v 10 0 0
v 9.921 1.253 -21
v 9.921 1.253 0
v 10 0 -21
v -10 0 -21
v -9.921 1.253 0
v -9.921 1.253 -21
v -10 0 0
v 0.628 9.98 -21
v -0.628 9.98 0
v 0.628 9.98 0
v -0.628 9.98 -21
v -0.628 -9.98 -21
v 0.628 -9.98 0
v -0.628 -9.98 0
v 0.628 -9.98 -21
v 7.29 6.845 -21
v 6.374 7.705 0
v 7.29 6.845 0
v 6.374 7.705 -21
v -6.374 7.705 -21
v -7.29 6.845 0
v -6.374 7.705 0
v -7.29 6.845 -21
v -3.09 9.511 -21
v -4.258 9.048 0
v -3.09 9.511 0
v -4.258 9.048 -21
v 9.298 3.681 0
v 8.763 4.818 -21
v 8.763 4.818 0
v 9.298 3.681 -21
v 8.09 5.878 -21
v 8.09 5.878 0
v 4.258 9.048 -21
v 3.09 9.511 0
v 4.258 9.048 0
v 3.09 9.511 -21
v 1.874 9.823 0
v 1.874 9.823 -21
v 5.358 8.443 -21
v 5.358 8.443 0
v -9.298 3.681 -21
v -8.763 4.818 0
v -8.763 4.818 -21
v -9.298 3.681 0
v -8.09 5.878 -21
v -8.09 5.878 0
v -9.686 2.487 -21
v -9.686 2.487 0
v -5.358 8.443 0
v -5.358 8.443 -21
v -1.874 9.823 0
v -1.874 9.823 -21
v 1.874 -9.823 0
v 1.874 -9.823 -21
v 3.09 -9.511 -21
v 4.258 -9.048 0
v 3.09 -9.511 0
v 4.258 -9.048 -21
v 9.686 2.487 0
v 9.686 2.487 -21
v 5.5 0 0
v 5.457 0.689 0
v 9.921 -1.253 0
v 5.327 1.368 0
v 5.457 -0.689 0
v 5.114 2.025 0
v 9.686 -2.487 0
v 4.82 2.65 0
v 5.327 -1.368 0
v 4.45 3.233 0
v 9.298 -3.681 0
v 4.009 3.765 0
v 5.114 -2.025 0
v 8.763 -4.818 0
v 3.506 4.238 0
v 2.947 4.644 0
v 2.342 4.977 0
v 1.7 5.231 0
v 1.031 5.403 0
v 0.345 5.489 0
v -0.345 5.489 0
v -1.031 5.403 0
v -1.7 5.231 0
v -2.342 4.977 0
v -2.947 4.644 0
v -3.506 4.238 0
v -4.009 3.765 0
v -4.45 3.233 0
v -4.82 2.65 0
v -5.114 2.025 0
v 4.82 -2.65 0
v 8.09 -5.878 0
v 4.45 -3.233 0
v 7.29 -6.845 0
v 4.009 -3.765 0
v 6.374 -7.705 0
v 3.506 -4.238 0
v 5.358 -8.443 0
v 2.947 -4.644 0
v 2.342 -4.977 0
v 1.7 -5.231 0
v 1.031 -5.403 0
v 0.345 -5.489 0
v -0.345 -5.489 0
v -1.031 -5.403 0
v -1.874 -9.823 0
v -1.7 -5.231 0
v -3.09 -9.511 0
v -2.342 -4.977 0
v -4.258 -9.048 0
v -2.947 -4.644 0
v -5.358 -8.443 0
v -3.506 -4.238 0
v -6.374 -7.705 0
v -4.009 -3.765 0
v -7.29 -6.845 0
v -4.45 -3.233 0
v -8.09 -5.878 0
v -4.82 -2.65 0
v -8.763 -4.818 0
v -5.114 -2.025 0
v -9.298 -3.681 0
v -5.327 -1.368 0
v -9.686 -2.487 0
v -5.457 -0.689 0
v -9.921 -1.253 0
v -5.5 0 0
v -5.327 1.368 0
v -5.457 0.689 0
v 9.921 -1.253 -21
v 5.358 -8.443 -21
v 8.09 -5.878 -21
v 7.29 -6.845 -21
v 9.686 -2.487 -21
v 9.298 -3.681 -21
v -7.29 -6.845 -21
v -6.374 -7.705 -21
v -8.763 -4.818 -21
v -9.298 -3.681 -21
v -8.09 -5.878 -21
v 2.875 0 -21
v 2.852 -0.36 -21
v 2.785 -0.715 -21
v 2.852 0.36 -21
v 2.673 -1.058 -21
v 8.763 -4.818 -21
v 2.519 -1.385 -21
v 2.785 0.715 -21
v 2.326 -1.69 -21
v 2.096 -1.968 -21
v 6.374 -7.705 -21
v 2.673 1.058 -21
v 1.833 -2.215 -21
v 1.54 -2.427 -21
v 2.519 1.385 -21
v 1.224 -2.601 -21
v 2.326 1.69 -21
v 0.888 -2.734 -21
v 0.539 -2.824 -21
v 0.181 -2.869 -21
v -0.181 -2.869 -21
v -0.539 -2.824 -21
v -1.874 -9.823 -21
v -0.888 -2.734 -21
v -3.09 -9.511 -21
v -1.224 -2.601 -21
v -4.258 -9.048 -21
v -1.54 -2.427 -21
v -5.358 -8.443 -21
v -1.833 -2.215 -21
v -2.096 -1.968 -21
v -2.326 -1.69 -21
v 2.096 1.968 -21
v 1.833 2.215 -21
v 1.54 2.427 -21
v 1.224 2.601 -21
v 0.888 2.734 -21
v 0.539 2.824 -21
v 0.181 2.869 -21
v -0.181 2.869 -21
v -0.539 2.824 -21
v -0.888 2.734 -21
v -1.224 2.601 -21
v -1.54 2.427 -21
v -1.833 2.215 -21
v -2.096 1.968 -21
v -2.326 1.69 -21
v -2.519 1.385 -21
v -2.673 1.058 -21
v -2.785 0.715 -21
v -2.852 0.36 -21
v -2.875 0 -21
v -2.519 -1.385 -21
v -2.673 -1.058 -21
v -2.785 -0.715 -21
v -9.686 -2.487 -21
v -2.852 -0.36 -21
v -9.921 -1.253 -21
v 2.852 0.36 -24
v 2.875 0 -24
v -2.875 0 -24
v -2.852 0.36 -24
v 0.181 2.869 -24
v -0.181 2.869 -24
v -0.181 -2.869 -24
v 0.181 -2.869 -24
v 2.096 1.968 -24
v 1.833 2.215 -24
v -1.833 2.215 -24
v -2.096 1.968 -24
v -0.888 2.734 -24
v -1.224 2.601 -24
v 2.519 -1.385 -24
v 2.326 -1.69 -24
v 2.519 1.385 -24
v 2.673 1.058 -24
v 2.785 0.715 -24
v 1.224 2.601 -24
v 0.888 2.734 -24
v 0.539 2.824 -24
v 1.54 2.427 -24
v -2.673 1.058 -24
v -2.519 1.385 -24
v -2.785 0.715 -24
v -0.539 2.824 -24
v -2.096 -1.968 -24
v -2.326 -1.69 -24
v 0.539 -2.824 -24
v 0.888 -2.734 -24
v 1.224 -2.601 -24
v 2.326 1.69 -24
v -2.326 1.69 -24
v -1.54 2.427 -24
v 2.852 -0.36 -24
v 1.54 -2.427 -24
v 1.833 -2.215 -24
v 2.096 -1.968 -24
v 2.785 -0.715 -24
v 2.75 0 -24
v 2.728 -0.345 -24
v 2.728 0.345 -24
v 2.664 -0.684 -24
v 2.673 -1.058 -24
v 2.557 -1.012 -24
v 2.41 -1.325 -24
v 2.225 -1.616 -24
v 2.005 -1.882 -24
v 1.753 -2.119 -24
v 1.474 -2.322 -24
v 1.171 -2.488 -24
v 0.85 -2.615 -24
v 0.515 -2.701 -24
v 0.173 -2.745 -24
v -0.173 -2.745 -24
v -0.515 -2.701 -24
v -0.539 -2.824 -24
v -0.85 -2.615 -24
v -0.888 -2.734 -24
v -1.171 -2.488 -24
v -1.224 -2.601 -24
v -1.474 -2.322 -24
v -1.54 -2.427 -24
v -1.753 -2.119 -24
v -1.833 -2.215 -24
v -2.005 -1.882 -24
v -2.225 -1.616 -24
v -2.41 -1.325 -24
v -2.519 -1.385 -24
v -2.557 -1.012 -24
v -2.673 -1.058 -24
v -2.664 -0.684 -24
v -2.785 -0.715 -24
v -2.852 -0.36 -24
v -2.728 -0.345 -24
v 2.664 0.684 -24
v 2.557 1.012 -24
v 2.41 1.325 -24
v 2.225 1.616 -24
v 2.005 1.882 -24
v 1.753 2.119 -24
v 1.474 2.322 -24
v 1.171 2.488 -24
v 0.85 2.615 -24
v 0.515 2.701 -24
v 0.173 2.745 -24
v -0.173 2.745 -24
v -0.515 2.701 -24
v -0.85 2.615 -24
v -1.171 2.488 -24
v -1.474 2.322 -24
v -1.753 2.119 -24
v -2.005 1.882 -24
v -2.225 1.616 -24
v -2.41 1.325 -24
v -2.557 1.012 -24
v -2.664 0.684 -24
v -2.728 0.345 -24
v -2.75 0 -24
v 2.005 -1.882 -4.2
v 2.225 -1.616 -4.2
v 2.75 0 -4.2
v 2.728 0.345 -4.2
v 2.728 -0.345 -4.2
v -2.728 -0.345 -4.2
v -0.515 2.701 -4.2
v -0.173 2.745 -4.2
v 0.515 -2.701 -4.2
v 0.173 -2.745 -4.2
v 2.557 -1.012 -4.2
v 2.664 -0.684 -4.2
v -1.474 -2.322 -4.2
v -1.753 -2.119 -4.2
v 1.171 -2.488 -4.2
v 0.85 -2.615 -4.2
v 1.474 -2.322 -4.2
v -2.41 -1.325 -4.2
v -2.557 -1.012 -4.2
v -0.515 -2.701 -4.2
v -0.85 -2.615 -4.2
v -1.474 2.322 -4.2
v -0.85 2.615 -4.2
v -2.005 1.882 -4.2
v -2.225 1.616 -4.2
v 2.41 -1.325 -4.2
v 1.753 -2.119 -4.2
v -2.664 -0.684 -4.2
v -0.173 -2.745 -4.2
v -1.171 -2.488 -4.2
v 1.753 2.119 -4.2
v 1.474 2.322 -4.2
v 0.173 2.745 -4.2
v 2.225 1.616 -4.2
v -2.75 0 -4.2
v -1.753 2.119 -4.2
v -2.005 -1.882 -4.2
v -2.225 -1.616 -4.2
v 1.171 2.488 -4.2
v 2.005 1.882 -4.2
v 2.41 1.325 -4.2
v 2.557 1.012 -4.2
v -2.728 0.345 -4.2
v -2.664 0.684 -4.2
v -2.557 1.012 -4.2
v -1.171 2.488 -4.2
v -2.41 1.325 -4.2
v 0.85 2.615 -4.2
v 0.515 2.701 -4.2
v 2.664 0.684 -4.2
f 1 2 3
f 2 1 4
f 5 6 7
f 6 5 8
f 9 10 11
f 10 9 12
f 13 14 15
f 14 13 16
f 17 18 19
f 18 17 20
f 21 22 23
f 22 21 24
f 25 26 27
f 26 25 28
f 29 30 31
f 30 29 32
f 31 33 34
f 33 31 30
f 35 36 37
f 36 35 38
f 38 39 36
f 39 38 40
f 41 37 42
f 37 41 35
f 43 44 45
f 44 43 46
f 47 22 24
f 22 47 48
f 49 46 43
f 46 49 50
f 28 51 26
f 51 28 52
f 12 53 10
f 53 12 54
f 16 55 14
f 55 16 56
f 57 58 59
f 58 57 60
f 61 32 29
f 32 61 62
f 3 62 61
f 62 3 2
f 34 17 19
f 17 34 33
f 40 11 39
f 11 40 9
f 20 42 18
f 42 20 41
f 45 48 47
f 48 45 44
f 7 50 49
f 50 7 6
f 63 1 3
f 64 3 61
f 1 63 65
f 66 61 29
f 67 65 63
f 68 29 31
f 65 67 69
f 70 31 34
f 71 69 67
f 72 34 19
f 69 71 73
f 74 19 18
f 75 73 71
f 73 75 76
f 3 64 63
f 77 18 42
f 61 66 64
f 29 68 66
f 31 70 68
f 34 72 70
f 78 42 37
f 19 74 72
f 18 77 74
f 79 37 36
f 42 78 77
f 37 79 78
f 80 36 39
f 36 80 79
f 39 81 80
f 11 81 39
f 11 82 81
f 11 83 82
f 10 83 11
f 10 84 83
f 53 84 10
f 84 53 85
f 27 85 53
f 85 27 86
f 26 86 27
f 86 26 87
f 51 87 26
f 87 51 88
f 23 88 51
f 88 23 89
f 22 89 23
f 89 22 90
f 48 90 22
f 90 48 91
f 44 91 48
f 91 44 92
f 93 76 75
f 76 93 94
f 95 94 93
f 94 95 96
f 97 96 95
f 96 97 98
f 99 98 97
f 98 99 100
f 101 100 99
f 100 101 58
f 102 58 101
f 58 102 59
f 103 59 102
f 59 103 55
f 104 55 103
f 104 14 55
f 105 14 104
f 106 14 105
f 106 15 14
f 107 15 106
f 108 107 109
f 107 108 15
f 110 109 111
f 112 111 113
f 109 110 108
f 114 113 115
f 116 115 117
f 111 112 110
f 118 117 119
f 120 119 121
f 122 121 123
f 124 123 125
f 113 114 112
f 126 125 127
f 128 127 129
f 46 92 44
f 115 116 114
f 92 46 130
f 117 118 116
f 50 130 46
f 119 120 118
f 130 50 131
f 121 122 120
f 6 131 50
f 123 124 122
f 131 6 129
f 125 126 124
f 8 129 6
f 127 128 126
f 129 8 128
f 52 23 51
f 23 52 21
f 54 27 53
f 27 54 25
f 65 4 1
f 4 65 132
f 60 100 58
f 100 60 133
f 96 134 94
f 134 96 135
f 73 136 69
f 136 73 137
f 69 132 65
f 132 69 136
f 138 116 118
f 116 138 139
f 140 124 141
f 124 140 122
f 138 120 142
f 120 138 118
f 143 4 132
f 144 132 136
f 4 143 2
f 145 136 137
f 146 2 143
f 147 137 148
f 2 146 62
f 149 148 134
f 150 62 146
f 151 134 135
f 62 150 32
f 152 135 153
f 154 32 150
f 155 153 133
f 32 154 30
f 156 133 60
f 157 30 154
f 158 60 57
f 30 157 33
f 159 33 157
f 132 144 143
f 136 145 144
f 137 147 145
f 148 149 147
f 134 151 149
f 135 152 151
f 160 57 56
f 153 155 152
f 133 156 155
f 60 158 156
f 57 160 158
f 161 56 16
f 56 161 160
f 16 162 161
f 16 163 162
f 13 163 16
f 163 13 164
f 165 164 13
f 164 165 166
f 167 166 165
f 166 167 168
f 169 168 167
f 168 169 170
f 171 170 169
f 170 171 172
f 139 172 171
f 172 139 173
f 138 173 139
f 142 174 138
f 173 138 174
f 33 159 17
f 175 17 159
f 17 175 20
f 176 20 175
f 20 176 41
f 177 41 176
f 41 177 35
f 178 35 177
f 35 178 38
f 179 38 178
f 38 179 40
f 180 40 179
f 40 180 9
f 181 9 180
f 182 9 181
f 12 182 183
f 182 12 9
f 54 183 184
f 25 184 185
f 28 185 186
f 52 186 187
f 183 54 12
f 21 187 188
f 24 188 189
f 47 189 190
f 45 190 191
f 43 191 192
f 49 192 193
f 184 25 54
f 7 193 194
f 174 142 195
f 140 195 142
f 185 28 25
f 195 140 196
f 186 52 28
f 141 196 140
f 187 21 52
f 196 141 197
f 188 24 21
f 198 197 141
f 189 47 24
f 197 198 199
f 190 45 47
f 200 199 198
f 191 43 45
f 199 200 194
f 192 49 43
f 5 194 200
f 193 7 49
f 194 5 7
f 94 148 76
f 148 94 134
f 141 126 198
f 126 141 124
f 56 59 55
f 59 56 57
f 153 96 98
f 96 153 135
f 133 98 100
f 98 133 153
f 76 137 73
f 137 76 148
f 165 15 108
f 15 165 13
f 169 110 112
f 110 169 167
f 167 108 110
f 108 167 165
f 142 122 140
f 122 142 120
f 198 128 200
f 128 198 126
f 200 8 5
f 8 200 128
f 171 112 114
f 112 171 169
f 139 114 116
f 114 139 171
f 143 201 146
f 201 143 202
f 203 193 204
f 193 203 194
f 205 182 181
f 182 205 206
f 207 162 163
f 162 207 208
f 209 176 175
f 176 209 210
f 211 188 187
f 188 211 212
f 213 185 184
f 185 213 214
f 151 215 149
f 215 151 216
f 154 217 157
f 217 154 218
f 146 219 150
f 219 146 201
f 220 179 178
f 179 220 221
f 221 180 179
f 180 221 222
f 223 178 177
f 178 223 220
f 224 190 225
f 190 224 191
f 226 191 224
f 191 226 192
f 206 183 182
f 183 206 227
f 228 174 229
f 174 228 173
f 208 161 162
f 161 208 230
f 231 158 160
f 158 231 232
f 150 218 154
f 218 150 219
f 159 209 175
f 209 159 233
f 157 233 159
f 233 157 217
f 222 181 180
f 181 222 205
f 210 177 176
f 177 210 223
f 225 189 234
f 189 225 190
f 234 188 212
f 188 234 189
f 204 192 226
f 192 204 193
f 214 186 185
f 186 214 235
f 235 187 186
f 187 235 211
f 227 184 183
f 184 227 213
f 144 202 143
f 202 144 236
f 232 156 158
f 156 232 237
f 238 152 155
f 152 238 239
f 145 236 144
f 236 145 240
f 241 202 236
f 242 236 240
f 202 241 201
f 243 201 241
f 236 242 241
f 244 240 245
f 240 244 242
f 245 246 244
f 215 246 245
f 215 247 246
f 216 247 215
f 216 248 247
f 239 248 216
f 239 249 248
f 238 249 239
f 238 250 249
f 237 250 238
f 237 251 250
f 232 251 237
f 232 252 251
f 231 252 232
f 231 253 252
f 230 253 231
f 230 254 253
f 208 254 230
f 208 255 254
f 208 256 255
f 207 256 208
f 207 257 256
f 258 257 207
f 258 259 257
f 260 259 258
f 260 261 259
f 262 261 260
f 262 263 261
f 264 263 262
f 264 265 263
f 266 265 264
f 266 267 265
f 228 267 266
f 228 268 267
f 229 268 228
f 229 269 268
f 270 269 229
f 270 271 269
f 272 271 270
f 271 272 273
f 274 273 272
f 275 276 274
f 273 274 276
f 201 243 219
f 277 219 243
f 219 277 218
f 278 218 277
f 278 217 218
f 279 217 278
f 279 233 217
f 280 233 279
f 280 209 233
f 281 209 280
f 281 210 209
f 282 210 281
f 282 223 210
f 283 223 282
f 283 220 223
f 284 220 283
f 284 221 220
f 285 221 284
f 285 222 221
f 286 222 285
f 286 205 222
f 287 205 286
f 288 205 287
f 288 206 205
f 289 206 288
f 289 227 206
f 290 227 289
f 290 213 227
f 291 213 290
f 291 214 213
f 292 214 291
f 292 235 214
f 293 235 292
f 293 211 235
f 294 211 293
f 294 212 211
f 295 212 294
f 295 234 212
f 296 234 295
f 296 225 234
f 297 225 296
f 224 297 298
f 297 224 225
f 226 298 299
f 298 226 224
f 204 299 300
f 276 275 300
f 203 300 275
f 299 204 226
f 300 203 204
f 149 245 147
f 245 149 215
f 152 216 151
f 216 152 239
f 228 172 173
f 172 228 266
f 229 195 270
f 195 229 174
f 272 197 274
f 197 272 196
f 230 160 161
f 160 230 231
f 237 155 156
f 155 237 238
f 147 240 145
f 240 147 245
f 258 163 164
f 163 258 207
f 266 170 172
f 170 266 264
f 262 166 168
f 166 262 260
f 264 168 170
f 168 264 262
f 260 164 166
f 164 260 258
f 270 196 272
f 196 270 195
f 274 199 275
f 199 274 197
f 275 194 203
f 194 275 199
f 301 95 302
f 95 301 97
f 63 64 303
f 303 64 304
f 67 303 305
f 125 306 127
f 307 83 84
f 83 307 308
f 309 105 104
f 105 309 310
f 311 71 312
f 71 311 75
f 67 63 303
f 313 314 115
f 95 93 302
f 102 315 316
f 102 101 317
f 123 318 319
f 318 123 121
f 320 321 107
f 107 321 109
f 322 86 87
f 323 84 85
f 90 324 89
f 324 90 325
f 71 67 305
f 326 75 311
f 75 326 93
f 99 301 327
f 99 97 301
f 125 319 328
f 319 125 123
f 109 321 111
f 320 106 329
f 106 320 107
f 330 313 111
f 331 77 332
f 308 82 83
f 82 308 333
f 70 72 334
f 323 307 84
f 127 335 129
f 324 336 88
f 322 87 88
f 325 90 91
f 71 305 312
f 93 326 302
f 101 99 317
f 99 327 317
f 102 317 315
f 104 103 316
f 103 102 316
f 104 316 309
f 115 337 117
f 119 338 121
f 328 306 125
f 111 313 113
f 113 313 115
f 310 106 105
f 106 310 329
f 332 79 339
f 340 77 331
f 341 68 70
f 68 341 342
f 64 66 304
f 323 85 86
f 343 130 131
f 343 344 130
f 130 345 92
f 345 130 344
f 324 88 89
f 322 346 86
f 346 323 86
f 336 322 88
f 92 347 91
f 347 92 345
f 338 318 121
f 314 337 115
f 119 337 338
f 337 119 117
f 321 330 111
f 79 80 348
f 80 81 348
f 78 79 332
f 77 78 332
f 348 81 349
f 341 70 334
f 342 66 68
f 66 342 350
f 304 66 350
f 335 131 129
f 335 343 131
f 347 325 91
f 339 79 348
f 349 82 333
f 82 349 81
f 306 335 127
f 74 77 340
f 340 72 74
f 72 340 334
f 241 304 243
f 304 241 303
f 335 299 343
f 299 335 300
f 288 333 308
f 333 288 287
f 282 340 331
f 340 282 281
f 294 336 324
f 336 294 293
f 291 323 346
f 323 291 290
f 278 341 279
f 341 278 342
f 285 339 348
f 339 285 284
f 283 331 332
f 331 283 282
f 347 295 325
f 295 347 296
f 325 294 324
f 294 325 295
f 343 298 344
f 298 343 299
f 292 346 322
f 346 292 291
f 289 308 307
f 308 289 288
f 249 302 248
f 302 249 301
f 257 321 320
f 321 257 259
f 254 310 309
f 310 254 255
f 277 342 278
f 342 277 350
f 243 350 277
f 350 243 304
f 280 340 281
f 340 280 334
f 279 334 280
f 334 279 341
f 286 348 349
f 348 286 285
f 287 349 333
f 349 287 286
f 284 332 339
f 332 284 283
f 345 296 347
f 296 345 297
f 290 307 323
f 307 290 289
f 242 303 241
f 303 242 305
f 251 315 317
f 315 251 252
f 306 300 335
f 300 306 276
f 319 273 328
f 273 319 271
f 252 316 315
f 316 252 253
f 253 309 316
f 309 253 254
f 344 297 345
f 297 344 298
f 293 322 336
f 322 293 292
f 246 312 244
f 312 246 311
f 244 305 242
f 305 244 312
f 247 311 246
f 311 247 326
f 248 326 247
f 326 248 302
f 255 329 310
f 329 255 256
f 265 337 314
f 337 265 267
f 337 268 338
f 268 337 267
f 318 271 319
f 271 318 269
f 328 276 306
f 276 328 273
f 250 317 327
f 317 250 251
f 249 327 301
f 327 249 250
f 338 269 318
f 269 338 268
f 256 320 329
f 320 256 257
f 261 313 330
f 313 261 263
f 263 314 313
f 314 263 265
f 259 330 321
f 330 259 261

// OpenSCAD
$fn = 50;

difference() {
	union() {
		translate(v = [0, 0, -21.0]) {
			cylinder(h = 21, r = 10.0);
		}
		#translate(v = [0, 0, -24.0]) {
			cylinder(h = 24, r = 2.875);
		}
	}
	union() {
		translate(v = [0, 0, 0]) {
			rotate(a = [0, 0, 0]) {
				difference() {
					union() {
						translate(v = [0, 0, -24.0]) {
							cylinder(h = 24, r = 2.25);
						}
						translate(v = [0, 0, -4.2]) {
							cylinder(h = 4.2, r1 = 2.75, r2 = 5.5);
						}
						translate(v = [0, 0, -24.0]) {
							cylinder(h = 24, r = 2.75);
						}
						translate(v = [0, 0, -24.0]) {
							cylinder(h = 24, r = 2.25);
						}
					}
					union();
				}
			}
		}
	}
}
